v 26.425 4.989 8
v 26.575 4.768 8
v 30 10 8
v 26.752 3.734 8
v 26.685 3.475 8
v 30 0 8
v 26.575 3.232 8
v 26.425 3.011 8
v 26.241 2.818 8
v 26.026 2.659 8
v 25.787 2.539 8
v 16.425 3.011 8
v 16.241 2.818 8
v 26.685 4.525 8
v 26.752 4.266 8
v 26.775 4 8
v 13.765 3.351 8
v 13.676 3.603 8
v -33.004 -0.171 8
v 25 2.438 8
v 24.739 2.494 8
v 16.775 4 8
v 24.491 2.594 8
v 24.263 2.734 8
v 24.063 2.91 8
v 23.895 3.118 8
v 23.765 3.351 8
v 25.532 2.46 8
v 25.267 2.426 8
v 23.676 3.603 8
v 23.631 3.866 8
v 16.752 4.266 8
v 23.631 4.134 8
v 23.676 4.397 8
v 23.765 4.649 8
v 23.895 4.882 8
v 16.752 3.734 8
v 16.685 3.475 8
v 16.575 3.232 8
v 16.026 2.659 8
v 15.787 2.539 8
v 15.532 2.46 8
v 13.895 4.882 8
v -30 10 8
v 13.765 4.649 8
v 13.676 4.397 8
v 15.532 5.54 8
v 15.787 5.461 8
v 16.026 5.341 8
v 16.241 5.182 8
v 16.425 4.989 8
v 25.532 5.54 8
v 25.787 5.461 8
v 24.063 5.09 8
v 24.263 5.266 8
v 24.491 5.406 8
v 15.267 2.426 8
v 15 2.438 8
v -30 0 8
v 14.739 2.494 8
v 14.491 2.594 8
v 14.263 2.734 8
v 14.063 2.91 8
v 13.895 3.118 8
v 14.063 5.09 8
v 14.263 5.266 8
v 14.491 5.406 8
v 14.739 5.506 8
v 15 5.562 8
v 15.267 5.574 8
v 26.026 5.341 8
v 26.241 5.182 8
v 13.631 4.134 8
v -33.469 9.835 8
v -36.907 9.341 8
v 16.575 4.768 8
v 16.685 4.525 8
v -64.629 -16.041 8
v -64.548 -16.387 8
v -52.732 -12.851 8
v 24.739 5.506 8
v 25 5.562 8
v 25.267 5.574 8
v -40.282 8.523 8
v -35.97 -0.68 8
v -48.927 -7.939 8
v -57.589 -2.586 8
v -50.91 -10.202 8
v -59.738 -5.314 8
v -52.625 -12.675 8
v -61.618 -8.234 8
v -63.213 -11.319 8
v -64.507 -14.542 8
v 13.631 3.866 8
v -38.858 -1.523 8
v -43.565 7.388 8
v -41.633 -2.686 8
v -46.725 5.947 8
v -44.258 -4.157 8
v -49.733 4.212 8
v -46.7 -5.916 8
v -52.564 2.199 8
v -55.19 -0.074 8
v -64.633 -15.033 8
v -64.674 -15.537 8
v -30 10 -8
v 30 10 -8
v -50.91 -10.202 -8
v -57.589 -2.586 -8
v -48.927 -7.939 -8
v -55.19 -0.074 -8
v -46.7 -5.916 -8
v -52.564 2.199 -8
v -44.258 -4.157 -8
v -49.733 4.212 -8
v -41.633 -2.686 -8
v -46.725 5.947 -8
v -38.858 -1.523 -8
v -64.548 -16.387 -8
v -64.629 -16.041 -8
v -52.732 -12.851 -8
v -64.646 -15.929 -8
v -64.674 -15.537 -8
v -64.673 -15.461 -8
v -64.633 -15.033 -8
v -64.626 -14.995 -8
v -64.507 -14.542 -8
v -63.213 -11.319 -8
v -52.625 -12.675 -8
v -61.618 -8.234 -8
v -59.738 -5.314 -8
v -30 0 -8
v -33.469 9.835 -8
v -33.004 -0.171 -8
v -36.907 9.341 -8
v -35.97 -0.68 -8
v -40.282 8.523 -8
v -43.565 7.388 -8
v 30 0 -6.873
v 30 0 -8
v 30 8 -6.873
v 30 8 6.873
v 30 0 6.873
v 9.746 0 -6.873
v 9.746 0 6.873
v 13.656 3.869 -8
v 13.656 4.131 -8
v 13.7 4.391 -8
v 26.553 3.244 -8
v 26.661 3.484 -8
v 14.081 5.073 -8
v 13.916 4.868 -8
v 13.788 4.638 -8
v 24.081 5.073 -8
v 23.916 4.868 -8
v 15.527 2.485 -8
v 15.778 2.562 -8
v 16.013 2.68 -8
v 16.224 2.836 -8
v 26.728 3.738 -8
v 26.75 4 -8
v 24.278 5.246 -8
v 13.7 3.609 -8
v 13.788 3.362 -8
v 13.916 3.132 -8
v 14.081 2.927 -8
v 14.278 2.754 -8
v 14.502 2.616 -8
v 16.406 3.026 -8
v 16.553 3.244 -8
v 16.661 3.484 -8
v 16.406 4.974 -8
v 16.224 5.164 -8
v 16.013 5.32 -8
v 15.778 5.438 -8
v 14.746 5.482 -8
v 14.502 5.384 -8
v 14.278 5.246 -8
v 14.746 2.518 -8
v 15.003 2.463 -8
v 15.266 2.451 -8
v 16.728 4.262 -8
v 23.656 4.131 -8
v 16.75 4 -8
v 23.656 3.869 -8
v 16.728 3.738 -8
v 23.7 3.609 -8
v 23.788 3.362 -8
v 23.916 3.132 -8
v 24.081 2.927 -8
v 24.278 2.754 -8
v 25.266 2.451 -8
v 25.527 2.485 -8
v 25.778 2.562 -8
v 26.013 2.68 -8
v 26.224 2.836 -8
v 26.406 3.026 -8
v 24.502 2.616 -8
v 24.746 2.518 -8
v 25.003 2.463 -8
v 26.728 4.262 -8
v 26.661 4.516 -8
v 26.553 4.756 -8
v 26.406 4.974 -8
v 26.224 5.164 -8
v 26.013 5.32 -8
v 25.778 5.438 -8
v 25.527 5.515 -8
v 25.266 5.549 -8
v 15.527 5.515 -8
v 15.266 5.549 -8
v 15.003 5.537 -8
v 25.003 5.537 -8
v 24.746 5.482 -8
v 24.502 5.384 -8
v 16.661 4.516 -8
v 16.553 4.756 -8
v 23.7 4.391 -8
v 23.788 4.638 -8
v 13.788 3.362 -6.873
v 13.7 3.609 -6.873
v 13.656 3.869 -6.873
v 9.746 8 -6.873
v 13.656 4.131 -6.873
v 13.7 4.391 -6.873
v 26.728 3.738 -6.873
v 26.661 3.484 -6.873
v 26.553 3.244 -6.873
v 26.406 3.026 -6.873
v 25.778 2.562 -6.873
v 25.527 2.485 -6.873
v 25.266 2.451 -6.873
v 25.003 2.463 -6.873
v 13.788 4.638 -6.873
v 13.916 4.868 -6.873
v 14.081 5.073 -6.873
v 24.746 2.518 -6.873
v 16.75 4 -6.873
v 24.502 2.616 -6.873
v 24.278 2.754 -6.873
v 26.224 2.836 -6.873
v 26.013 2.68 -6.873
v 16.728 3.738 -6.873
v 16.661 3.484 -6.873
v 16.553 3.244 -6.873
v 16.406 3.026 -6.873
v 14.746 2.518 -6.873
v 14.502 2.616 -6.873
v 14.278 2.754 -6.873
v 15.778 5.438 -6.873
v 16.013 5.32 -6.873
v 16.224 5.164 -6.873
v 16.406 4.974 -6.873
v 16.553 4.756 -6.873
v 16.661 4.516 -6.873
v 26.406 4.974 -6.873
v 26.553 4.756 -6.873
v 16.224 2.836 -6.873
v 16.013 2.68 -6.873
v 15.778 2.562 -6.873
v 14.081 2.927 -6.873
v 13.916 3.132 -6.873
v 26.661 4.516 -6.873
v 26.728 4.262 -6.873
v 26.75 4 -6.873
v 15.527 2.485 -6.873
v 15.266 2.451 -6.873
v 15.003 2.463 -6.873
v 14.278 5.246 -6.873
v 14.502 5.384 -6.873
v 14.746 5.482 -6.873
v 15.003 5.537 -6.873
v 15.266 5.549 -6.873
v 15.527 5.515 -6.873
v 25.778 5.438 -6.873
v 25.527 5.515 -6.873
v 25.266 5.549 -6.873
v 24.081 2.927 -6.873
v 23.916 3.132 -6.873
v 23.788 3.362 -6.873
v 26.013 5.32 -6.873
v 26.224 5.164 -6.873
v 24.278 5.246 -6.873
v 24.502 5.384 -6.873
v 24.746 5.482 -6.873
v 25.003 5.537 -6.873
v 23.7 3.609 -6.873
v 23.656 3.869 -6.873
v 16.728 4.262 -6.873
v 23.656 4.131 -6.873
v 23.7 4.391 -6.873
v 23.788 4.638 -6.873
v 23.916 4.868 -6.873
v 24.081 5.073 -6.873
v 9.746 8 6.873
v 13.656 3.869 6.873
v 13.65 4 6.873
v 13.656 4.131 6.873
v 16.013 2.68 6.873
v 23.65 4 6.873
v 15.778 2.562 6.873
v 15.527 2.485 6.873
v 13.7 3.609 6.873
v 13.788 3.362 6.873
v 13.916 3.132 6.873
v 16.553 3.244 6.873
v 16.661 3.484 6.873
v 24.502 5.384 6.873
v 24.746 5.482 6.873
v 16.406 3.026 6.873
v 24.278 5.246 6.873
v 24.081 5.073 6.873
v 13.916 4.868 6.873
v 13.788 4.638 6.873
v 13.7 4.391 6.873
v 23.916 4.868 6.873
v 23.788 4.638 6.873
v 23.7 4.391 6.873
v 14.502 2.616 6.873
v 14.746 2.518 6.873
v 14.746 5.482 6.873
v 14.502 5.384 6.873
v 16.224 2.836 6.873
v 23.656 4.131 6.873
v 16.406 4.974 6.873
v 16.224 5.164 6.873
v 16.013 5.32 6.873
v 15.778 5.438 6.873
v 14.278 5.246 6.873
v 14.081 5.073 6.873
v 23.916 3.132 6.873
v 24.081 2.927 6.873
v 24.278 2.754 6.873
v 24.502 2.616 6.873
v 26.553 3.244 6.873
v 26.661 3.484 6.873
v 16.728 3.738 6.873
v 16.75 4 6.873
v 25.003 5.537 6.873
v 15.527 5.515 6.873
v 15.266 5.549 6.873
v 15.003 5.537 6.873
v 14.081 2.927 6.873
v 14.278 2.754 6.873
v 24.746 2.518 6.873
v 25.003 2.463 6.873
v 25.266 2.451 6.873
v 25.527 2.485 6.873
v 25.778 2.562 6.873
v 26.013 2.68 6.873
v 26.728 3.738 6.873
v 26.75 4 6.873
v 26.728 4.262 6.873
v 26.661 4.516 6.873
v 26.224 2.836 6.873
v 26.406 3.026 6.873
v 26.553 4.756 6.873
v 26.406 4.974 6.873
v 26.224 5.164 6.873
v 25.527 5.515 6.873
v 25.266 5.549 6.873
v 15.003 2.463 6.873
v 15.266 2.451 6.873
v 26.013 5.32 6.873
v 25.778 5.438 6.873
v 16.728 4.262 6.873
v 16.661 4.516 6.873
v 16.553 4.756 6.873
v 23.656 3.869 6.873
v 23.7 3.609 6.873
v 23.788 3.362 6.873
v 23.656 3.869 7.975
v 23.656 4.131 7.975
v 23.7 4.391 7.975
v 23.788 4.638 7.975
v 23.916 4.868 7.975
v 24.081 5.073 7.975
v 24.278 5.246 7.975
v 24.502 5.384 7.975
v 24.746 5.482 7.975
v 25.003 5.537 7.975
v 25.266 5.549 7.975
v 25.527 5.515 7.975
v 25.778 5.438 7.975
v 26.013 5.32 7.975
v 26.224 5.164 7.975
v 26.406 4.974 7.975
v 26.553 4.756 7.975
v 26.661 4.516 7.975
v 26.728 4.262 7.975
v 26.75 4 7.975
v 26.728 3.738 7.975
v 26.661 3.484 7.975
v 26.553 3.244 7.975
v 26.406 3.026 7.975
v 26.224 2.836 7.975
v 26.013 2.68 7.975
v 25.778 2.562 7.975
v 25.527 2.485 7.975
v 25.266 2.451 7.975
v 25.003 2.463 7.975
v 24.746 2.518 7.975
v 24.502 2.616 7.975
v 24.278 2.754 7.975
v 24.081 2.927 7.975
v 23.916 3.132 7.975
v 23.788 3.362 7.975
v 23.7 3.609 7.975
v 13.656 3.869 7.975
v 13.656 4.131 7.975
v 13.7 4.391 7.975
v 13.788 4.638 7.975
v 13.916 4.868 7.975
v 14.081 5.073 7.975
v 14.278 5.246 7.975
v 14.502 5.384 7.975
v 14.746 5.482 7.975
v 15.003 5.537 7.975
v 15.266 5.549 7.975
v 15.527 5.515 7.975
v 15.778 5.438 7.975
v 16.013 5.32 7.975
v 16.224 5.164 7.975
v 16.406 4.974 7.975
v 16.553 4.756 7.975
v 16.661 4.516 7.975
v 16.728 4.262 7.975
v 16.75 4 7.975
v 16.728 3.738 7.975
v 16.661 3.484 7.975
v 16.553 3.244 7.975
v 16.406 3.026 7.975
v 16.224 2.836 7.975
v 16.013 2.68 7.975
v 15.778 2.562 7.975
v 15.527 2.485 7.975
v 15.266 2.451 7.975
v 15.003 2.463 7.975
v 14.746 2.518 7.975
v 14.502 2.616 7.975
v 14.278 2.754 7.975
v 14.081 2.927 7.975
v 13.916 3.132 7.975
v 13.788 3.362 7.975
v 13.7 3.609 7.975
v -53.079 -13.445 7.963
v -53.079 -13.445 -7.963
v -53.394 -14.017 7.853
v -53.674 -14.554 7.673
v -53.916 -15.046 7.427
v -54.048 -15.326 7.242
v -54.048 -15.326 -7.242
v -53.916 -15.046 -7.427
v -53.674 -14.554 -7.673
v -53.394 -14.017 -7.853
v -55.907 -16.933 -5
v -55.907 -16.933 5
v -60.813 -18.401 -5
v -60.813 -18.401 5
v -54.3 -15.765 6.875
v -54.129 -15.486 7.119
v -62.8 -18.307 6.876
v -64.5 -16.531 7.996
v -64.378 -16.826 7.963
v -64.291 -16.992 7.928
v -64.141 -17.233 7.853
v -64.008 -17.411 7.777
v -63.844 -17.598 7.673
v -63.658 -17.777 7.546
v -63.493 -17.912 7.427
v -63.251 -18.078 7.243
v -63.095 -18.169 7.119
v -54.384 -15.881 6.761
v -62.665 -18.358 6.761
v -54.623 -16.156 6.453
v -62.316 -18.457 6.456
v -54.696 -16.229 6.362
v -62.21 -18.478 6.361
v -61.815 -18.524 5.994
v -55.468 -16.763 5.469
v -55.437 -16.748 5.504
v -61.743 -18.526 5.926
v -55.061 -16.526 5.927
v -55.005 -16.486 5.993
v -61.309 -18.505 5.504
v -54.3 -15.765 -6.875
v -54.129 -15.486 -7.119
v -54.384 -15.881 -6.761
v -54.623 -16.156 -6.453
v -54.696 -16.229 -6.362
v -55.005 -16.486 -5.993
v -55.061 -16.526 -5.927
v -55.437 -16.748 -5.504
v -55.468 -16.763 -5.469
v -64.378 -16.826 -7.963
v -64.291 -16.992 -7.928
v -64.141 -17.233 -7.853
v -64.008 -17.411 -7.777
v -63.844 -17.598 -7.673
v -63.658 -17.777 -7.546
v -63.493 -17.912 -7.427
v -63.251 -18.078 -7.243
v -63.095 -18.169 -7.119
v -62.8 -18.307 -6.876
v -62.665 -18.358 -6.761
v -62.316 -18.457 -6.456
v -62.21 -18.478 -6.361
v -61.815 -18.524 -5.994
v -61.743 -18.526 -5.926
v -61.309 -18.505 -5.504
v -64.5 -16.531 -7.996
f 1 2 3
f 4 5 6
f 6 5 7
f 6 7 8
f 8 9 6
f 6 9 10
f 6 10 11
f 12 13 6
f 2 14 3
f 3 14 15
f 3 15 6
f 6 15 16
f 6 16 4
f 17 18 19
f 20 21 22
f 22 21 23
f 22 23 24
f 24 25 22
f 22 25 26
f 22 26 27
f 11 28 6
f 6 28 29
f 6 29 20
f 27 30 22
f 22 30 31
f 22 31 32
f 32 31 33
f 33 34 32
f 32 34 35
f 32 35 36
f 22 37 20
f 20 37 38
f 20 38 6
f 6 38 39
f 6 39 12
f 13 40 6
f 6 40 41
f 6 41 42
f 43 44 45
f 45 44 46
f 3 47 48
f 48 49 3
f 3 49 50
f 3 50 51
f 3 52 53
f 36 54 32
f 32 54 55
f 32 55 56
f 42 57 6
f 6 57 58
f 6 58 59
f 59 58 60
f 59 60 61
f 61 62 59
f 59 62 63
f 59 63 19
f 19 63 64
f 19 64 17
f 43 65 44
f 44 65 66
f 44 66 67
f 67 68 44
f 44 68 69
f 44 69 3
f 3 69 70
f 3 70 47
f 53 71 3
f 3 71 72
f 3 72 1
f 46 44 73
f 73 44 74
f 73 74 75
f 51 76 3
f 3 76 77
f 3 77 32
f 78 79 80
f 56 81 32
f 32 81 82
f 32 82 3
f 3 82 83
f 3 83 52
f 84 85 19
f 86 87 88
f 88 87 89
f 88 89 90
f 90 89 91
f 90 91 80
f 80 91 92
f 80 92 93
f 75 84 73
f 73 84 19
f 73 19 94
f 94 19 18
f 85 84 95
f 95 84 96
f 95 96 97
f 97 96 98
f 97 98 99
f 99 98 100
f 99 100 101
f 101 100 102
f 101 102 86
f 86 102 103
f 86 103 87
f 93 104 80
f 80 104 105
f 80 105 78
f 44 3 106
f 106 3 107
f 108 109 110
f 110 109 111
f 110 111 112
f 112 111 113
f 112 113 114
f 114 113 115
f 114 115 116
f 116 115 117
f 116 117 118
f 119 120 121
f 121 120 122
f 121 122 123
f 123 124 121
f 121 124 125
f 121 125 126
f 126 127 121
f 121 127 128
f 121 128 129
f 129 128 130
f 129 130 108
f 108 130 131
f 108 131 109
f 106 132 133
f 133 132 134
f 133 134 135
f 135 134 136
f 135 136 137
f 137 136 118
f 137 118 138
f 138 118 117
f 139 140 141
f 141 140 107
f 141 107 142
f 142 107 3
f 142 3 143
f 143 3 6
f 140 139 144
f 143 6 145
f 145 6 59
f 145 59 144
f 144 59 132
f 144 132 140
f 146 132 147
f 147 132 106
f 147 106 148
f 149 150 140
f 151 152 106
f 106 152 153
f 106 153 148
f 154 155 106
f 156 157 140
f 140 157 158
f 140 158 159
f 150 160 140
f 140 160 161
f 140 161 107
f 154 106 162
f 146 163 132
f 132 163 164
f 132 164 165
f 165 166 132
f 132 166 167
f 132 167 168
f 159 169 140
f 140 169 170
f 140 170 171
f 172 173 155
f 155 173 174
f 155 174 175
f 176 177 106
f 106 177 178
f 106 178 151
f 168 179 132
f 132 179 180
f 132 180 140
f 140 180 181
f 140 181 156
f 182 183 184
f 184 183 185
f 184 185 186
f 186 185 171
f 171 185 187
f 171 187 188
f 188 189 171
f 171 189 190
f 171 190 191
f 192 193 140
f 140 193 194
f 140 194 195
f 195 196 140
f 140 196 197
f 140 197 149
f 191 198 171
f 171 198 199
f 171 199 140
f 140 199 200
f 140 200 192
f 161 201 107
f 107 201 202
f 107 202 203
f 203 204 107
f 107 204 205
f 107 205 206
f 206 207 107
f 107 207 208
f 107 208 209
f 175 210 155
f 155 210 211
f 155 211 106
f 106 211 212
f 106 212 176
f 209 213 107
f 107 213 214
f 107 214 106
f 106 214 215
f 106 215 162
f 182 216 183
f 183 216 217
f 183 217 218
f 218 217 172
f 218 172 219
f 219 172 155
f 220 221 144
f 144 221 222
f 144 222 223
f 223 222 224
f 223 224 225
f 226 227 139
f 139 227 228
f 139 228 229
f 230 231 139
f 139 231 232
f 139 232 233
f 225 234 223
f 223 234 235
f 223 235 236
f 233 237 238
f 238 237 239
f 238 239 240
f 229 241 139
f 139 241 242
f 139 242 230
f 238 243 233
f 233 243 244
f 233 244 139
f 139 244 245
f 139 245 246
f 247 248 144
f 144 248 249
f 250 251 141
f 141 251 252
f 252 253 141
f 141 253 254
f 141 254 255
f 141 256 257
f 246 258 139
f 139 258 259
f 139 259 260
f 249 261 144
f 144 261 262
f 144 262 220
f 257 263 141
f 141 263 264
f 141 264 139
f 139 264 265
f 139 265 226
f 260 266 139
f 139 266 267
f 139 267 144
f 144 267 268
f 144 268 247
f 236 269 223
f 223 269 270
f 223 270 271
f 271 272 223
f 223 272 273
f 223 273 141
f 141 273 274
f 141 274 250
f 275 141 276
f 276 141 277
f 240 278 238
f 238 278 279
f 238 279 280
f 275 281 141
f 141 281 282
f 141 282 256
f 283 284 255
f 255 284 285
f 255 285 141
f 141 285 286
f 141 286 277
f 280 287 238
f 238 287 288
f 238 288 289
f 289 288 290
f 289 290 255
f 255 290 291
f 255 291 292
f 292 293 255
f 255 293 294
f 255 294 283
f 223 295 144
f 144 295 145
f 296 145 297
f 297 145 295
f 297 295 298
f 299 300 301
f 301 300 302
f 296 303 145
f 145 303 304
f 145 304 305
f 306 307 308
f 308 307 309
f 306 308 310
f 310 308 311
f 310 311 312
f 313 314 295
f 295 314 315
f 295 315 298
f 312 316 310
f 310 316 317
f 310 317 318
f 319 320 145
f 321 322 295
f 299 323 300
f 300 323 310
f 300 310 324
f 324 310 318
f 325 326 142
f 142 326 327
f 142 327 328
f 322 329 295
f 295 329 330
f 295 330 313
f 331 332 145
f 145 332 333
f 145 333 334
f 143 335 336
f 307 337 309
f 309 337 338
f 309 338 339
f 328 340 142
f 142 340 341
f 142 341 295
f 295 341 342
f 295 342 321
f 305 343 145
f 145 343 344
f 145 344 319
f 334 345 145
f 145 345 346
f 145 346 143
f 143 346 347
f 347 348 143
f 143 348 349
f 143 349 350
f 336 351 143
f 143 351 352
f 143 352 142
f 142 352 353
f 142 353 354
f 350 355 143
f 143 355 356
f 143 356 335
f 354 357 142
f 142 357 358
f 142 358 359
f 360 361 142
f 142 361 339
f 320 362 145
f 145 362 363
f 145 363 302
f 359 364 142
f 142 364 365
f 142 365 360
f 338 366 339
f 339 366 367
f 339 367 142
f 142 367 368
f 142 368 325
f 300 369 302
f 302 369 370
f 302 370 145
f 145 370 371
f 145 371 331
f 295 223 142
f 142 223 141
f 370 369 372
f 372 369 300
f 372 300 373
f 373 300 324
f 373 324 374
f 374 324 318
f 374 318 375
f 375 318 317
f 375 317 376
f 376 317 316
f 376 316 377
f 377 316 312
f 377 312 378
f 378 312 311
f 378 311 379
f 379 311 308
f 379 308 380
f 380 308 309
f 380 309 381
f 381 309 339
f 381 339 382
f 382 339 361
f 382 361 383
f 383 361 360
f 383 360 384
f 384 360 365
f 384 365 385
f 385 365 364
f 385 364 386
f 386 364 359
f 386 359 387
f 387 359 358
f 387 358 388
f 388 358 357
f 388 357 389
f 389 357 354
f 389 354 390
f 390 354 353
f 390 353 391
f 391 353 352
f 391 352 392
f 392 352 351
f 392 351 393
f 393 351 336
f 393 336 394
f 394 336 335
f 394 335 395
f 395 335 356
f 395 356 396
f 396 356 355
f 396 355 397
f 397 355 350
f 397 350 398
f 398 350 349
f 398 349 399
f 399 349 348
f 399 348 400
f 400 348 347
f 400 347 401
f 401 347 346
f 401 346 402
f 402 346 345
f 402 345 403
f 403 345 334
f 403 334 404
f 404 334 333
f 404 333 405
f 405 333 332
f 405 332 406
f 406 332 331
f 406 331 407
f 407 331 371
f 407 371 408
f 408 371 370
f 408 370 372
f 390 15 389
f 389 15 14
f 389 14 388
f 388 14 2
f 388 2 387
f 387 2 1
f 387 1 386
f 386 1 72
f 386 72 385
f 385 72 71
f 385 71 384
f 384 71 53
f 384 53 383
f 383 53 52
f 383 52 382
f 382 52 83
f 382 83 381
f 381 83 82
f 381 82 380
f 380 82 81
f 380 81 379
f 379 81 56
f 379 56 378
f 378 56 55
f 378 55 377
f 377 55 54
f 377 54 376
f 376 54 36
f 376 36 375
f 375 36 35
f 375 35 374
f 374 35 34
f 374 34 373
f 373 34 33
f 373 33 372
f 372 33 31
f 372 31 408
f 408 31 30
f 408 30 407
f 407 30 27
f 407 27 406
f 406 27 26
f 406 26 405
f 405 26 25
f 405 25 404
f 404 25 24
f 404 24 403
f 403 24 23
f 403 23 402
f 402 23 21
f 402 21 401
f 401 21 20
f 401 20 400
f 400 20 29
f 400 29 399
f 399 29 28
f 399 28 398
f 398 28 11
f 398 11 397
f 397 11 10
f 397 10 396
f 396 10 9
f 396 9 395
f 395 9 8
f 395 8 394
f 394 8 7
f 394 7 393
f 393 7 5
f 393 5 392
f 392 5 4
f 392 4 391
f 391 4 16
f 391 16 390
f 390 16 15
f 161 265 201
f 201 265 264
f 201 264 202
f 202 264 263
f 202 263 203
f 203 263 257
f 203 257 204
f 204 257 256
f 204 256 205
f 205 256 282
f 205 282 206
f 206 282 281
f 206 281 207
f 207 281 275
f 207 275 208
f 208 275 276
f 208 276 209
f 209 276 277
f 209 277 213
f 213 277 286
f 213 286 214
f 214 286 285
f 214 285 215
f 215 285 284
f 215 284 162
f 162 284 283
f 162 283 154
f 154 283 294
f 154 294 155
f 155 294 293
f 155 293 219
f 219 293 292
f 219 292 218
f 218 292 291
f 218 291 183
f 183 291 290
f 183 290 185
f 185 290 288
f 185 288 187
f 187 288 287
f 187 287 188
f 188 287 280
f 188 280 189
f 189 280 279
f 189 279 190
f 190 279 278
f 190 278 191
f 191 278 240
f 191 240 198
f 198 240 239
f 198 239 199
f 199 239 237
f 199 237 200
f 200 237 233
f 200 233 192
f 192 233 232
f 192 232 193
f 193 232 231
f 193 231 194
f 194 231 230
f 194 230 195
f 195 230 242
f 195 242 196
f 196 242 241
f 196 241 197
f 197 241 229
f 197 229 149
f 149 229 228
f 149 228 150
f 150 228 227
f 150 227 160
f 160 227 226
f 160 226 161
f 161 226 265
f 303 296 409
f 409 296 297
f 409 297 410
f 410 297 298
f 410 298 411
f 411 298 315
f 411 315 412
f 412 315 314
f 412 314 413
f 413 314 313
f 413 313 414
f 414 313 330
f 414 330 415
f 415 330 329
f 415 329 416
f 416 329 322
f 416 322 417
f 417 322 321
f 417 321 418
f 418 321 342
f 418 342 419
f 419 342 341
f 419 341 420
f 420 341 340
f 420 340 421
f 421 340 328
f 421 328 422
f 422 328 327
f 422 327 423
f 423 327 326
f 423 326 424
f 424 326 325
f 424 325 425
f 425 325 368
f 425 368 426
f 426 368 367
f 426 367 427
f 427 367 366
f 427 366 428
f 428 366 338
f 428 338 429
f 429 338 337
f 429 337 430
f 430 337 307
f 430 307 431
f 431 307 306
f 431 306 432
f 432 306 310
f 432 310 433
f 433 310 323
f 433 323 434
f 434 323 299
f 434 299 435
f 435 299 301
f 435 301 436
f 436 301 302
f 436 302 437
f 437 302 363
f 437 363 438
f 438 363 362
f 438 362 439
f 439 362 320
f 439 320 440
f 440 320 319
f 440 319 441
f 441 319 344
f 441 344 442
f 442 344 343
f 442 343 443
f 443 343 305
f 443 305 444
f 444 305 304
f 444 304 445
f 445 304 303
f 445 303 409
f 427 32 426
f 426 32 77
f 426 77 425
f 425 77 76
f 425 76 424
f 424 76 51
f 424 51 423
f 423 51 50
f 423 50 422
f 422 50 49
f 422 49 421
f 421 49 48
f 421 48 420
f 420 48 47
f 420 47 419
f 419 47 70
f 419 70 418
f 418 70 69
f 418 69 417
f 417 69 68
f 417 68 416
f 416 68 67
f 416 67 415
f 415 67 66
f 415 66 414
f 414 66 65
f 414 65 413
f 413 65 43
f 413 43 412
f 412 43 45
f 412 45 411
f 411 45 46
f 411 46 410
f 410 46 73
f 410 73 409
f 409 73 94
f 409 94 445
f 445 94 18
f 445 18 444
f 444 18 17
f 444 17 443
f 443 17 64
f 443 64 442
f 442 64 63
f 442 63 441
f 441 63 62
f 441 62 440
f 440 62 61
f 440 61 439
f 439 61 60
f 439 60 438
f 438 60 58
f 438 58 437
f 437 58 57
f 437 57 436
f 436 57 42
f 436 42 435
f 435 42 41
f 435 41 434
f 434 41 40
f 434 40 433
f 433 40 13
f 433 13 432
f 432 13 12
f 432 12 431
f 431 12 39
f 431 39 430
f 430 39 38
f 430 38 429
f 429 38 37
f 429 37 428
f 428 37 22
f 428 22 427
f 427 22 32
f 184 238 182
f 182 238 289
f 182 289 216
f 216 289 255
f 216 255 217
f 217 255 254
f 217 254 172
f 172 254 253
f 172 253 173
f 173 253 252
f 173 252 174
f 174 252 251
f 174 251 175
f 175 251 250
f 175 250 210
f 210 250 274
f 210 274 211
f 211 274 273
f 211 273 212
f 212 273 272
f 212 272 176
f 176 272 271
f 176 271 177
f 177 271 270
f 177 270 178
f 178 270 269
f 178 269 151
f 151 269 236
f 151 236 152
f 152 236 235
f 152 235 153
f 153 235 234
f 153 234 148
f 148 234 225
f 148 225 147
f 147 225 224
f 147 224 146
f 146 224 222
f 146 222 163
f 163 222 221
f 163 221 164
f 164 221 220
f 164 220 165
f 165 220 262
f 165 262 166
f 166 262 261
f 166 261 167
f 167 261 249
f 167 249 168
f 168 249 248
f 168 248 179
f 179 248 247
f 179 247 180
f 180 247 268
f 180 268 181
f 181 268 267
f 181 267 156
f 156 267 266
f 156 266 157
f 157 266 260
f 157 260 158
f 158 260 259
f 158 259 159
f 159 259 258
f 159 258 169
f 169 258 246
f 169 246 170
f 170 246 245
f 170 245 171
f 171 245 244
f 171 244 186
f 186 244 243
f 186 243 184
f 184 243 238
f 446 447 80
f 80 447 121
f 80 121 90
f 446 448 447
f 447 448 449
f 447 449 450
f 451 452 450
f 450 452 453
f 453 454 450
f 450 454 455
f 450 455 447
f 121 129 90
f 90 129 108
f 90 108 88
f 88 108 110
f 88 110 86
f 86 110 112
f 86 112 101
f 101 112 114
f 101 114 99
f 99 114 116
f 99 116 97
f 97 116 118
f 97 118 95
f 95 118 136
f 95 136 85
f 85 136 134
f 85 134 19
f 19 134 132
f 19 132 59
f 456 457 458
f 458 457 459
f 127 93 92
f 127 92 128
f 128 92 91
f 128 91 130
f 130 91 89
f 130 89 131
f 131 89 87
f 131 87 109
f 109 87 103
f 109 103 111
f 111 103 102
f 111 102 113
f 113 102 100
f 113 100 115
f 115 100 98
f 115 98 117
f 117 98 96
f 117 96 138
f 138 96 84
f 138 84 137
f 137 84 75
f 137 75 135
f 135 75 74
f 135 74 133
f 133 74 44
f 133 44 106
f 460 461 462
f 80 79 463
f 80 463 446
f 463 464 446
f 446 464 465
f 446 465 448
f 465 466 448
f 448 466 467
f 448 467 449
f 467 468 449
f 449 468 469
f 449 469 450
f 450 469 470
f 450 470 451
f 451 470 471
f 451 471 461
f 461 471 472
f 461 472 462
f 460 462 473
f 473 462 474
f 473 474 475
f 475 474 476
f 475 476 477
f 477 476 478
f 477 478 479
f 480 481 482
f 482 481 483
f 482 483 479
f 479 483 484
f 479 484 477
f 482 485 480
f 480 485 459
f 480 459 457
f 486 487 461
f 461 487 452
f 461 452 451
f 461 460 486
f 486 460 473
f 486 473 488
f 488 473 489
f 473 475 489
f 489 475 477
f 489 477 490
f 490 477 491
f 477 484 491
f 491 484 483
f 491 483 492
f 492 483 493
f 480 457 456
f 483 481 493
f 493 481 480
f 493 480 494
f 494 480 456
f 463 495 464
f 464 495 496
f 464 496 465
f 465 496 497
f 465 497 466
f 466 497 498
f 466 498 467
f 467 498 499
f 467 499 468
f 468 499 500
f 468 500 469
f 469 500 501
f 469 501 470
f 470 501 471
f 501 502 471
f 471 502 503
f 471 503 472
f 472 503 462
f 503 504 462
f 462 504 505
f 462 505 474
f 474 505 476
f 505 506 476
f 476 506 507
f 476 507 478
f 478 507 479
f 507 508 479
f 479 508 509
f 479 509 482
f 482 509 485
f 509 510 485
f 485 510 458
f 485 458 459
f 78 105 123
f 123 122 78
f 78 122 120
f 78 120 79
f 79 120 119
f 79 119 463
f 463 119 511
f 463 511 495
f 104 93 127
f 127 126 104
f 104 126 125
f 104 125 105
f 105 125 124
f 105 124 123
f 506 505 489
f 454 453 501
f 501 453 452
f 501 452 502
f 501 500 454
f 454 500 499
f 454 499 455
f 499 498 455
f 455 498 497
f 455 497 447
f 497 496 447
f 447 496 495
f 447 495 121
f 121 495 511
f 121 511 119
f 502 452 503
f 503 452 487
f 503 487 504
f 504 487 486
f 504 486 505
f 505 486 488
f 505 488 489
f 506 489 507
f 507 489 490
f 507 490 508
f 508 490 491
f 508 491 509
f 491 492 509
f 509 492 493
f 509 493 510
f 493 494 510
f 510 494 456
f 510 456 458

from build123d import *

# Parameters (mm, degrees)
SKETCH1_W                        = 60
SKETCH1_H                        = 16
BOSS_EXTRUDE1_DEPTH              = 10
SKETCH3_W                        = 20.254
SKETCH3_H                        = 13.746
CUT_EXTRUDE1_DEPTH               = 8
M2_5_CLEARANCE_HOLE1_D           = 3.1
M2_5_CLEARANCE_HOLE1_CSINK_D     = 3.15
M2_5_CLEARANCE_HOLE1_CSINK_ANGLE = 90
BOSS_EXTRUDE4_DEPTH              = 35
CUT_EXTRUDE8_DEPTH               = 107.825342634
CUT_EXTRUDE8_DEPTH_BACK          = 107.825342634
SKETCH14_OUTSIDE_W               = 163.346
SKETCH14_OUTSIDE_H               = 64.796
FILLET6_R                        = 3


with BuildPart() as part:
    # Sketch1 → Boss-Extrude1 (new body)
    with BuildSketch(Plane(origin=(0, 0, 0), x_dir=(1, 0, 0), z_dir=(0, 1, 0))):
        Rectangle(SKETCH1_W, SKETCH1_H)
    extrude(amount=BOSS_EXTRUDE1_DEPTH)

    # Sketch3 → Cut-Extrude1 (cut)
    with BuildSketch(Plane(origin=(0, 0, 0), x_dir=(1, 0, 0), z_dir=(0, 1, 0))):
        with Locations((19.873, 0)):
            Rectangle(SKETCH3_W, SKETCH3_H)
    extrude(amount=CUT_EXTRUDE1_DEPTH, mode=Mode.SUBTRACT)

    # M2.5 Clearance Hole1 (through all)
    with Locations(Plane.XY.offset(8)):
        with Locations((15.2, 4), (25.2, 4)):
            CounterSinkHole(M2_5_CLEARANCE_HOLE1_D / 2, M2_5_CLEARANCE_HOLE1_CSINK_D / 2, counter_sink_angle=M2_5_CLEARANCE_HOLE1_CSINK_ANGLE)

    # Sketch12 → Boss-Extrude4 (add)
    with BuildSketch(Plane(origin=(0, 10, 0), x_dir=(1, 0, 0), z_dir=(0, 1, 0))):
        Polygon((-30, 8), (-103.550247845, 7.999936172), (-103.550247845, -3.1914e-05), (-103.550247845, -8), (-30, -8), align=None)
    extrude(amount=-BOSS_EXTRUDE4_DEPTH)

    # Sketch14 outside → Cut-Extrude8 (cut, two sides: drawn at the far end of the back side and taken through both)
    with BuildSketch(Plane.XY.offset(-CUT_EXTRUDE8_DEPTH_BACK)):
        with Locations((-36.775, -7.5)):
            Rectangle(SKETCH14_OUTSIDE_W, SKETCH14_OUTSIDE_H)
        with BuildLine():
            Line((30, 0), (-30, 0))
            ThreePointArc((-30, 0), (-44.809706125, -4.518239103), (-54.575111815, -16.534009232))
            Line((-54.575111815, -16.534009232), (-65.929573082, -19.931975488))
            ThreePointArc((-65.929573082, -19.931975488), (-53.381923459, 1.536604003), (-30, 10))
            Line((-30, 10), (30, 10))
            Line((30, 10), (30, 0))
        make_face(mode=Mode.SUBTRACT)
    extrude(amount=CUT_EXTRUDE8_DEPTH + CUT_EXTRUDE8_DEPTH_BACK, mode=Mode.SUBTRACT)

    # Fillet6
    fillet6_edges = [part.edges().sort_by_distance(p)[0] for p in [
        (-54.575111815, -16.534009232, 1.0663e-05),
        (-60.252342448, -18.23299236, -7.999973747),
        (-65.929573082, -19.931975488, 1.559e-05),
        (-60.252342448, -18.23299236, 8),
    ]]
    fillet(fillet6_edges, radius=FILLET6_R)


solid = part.part
